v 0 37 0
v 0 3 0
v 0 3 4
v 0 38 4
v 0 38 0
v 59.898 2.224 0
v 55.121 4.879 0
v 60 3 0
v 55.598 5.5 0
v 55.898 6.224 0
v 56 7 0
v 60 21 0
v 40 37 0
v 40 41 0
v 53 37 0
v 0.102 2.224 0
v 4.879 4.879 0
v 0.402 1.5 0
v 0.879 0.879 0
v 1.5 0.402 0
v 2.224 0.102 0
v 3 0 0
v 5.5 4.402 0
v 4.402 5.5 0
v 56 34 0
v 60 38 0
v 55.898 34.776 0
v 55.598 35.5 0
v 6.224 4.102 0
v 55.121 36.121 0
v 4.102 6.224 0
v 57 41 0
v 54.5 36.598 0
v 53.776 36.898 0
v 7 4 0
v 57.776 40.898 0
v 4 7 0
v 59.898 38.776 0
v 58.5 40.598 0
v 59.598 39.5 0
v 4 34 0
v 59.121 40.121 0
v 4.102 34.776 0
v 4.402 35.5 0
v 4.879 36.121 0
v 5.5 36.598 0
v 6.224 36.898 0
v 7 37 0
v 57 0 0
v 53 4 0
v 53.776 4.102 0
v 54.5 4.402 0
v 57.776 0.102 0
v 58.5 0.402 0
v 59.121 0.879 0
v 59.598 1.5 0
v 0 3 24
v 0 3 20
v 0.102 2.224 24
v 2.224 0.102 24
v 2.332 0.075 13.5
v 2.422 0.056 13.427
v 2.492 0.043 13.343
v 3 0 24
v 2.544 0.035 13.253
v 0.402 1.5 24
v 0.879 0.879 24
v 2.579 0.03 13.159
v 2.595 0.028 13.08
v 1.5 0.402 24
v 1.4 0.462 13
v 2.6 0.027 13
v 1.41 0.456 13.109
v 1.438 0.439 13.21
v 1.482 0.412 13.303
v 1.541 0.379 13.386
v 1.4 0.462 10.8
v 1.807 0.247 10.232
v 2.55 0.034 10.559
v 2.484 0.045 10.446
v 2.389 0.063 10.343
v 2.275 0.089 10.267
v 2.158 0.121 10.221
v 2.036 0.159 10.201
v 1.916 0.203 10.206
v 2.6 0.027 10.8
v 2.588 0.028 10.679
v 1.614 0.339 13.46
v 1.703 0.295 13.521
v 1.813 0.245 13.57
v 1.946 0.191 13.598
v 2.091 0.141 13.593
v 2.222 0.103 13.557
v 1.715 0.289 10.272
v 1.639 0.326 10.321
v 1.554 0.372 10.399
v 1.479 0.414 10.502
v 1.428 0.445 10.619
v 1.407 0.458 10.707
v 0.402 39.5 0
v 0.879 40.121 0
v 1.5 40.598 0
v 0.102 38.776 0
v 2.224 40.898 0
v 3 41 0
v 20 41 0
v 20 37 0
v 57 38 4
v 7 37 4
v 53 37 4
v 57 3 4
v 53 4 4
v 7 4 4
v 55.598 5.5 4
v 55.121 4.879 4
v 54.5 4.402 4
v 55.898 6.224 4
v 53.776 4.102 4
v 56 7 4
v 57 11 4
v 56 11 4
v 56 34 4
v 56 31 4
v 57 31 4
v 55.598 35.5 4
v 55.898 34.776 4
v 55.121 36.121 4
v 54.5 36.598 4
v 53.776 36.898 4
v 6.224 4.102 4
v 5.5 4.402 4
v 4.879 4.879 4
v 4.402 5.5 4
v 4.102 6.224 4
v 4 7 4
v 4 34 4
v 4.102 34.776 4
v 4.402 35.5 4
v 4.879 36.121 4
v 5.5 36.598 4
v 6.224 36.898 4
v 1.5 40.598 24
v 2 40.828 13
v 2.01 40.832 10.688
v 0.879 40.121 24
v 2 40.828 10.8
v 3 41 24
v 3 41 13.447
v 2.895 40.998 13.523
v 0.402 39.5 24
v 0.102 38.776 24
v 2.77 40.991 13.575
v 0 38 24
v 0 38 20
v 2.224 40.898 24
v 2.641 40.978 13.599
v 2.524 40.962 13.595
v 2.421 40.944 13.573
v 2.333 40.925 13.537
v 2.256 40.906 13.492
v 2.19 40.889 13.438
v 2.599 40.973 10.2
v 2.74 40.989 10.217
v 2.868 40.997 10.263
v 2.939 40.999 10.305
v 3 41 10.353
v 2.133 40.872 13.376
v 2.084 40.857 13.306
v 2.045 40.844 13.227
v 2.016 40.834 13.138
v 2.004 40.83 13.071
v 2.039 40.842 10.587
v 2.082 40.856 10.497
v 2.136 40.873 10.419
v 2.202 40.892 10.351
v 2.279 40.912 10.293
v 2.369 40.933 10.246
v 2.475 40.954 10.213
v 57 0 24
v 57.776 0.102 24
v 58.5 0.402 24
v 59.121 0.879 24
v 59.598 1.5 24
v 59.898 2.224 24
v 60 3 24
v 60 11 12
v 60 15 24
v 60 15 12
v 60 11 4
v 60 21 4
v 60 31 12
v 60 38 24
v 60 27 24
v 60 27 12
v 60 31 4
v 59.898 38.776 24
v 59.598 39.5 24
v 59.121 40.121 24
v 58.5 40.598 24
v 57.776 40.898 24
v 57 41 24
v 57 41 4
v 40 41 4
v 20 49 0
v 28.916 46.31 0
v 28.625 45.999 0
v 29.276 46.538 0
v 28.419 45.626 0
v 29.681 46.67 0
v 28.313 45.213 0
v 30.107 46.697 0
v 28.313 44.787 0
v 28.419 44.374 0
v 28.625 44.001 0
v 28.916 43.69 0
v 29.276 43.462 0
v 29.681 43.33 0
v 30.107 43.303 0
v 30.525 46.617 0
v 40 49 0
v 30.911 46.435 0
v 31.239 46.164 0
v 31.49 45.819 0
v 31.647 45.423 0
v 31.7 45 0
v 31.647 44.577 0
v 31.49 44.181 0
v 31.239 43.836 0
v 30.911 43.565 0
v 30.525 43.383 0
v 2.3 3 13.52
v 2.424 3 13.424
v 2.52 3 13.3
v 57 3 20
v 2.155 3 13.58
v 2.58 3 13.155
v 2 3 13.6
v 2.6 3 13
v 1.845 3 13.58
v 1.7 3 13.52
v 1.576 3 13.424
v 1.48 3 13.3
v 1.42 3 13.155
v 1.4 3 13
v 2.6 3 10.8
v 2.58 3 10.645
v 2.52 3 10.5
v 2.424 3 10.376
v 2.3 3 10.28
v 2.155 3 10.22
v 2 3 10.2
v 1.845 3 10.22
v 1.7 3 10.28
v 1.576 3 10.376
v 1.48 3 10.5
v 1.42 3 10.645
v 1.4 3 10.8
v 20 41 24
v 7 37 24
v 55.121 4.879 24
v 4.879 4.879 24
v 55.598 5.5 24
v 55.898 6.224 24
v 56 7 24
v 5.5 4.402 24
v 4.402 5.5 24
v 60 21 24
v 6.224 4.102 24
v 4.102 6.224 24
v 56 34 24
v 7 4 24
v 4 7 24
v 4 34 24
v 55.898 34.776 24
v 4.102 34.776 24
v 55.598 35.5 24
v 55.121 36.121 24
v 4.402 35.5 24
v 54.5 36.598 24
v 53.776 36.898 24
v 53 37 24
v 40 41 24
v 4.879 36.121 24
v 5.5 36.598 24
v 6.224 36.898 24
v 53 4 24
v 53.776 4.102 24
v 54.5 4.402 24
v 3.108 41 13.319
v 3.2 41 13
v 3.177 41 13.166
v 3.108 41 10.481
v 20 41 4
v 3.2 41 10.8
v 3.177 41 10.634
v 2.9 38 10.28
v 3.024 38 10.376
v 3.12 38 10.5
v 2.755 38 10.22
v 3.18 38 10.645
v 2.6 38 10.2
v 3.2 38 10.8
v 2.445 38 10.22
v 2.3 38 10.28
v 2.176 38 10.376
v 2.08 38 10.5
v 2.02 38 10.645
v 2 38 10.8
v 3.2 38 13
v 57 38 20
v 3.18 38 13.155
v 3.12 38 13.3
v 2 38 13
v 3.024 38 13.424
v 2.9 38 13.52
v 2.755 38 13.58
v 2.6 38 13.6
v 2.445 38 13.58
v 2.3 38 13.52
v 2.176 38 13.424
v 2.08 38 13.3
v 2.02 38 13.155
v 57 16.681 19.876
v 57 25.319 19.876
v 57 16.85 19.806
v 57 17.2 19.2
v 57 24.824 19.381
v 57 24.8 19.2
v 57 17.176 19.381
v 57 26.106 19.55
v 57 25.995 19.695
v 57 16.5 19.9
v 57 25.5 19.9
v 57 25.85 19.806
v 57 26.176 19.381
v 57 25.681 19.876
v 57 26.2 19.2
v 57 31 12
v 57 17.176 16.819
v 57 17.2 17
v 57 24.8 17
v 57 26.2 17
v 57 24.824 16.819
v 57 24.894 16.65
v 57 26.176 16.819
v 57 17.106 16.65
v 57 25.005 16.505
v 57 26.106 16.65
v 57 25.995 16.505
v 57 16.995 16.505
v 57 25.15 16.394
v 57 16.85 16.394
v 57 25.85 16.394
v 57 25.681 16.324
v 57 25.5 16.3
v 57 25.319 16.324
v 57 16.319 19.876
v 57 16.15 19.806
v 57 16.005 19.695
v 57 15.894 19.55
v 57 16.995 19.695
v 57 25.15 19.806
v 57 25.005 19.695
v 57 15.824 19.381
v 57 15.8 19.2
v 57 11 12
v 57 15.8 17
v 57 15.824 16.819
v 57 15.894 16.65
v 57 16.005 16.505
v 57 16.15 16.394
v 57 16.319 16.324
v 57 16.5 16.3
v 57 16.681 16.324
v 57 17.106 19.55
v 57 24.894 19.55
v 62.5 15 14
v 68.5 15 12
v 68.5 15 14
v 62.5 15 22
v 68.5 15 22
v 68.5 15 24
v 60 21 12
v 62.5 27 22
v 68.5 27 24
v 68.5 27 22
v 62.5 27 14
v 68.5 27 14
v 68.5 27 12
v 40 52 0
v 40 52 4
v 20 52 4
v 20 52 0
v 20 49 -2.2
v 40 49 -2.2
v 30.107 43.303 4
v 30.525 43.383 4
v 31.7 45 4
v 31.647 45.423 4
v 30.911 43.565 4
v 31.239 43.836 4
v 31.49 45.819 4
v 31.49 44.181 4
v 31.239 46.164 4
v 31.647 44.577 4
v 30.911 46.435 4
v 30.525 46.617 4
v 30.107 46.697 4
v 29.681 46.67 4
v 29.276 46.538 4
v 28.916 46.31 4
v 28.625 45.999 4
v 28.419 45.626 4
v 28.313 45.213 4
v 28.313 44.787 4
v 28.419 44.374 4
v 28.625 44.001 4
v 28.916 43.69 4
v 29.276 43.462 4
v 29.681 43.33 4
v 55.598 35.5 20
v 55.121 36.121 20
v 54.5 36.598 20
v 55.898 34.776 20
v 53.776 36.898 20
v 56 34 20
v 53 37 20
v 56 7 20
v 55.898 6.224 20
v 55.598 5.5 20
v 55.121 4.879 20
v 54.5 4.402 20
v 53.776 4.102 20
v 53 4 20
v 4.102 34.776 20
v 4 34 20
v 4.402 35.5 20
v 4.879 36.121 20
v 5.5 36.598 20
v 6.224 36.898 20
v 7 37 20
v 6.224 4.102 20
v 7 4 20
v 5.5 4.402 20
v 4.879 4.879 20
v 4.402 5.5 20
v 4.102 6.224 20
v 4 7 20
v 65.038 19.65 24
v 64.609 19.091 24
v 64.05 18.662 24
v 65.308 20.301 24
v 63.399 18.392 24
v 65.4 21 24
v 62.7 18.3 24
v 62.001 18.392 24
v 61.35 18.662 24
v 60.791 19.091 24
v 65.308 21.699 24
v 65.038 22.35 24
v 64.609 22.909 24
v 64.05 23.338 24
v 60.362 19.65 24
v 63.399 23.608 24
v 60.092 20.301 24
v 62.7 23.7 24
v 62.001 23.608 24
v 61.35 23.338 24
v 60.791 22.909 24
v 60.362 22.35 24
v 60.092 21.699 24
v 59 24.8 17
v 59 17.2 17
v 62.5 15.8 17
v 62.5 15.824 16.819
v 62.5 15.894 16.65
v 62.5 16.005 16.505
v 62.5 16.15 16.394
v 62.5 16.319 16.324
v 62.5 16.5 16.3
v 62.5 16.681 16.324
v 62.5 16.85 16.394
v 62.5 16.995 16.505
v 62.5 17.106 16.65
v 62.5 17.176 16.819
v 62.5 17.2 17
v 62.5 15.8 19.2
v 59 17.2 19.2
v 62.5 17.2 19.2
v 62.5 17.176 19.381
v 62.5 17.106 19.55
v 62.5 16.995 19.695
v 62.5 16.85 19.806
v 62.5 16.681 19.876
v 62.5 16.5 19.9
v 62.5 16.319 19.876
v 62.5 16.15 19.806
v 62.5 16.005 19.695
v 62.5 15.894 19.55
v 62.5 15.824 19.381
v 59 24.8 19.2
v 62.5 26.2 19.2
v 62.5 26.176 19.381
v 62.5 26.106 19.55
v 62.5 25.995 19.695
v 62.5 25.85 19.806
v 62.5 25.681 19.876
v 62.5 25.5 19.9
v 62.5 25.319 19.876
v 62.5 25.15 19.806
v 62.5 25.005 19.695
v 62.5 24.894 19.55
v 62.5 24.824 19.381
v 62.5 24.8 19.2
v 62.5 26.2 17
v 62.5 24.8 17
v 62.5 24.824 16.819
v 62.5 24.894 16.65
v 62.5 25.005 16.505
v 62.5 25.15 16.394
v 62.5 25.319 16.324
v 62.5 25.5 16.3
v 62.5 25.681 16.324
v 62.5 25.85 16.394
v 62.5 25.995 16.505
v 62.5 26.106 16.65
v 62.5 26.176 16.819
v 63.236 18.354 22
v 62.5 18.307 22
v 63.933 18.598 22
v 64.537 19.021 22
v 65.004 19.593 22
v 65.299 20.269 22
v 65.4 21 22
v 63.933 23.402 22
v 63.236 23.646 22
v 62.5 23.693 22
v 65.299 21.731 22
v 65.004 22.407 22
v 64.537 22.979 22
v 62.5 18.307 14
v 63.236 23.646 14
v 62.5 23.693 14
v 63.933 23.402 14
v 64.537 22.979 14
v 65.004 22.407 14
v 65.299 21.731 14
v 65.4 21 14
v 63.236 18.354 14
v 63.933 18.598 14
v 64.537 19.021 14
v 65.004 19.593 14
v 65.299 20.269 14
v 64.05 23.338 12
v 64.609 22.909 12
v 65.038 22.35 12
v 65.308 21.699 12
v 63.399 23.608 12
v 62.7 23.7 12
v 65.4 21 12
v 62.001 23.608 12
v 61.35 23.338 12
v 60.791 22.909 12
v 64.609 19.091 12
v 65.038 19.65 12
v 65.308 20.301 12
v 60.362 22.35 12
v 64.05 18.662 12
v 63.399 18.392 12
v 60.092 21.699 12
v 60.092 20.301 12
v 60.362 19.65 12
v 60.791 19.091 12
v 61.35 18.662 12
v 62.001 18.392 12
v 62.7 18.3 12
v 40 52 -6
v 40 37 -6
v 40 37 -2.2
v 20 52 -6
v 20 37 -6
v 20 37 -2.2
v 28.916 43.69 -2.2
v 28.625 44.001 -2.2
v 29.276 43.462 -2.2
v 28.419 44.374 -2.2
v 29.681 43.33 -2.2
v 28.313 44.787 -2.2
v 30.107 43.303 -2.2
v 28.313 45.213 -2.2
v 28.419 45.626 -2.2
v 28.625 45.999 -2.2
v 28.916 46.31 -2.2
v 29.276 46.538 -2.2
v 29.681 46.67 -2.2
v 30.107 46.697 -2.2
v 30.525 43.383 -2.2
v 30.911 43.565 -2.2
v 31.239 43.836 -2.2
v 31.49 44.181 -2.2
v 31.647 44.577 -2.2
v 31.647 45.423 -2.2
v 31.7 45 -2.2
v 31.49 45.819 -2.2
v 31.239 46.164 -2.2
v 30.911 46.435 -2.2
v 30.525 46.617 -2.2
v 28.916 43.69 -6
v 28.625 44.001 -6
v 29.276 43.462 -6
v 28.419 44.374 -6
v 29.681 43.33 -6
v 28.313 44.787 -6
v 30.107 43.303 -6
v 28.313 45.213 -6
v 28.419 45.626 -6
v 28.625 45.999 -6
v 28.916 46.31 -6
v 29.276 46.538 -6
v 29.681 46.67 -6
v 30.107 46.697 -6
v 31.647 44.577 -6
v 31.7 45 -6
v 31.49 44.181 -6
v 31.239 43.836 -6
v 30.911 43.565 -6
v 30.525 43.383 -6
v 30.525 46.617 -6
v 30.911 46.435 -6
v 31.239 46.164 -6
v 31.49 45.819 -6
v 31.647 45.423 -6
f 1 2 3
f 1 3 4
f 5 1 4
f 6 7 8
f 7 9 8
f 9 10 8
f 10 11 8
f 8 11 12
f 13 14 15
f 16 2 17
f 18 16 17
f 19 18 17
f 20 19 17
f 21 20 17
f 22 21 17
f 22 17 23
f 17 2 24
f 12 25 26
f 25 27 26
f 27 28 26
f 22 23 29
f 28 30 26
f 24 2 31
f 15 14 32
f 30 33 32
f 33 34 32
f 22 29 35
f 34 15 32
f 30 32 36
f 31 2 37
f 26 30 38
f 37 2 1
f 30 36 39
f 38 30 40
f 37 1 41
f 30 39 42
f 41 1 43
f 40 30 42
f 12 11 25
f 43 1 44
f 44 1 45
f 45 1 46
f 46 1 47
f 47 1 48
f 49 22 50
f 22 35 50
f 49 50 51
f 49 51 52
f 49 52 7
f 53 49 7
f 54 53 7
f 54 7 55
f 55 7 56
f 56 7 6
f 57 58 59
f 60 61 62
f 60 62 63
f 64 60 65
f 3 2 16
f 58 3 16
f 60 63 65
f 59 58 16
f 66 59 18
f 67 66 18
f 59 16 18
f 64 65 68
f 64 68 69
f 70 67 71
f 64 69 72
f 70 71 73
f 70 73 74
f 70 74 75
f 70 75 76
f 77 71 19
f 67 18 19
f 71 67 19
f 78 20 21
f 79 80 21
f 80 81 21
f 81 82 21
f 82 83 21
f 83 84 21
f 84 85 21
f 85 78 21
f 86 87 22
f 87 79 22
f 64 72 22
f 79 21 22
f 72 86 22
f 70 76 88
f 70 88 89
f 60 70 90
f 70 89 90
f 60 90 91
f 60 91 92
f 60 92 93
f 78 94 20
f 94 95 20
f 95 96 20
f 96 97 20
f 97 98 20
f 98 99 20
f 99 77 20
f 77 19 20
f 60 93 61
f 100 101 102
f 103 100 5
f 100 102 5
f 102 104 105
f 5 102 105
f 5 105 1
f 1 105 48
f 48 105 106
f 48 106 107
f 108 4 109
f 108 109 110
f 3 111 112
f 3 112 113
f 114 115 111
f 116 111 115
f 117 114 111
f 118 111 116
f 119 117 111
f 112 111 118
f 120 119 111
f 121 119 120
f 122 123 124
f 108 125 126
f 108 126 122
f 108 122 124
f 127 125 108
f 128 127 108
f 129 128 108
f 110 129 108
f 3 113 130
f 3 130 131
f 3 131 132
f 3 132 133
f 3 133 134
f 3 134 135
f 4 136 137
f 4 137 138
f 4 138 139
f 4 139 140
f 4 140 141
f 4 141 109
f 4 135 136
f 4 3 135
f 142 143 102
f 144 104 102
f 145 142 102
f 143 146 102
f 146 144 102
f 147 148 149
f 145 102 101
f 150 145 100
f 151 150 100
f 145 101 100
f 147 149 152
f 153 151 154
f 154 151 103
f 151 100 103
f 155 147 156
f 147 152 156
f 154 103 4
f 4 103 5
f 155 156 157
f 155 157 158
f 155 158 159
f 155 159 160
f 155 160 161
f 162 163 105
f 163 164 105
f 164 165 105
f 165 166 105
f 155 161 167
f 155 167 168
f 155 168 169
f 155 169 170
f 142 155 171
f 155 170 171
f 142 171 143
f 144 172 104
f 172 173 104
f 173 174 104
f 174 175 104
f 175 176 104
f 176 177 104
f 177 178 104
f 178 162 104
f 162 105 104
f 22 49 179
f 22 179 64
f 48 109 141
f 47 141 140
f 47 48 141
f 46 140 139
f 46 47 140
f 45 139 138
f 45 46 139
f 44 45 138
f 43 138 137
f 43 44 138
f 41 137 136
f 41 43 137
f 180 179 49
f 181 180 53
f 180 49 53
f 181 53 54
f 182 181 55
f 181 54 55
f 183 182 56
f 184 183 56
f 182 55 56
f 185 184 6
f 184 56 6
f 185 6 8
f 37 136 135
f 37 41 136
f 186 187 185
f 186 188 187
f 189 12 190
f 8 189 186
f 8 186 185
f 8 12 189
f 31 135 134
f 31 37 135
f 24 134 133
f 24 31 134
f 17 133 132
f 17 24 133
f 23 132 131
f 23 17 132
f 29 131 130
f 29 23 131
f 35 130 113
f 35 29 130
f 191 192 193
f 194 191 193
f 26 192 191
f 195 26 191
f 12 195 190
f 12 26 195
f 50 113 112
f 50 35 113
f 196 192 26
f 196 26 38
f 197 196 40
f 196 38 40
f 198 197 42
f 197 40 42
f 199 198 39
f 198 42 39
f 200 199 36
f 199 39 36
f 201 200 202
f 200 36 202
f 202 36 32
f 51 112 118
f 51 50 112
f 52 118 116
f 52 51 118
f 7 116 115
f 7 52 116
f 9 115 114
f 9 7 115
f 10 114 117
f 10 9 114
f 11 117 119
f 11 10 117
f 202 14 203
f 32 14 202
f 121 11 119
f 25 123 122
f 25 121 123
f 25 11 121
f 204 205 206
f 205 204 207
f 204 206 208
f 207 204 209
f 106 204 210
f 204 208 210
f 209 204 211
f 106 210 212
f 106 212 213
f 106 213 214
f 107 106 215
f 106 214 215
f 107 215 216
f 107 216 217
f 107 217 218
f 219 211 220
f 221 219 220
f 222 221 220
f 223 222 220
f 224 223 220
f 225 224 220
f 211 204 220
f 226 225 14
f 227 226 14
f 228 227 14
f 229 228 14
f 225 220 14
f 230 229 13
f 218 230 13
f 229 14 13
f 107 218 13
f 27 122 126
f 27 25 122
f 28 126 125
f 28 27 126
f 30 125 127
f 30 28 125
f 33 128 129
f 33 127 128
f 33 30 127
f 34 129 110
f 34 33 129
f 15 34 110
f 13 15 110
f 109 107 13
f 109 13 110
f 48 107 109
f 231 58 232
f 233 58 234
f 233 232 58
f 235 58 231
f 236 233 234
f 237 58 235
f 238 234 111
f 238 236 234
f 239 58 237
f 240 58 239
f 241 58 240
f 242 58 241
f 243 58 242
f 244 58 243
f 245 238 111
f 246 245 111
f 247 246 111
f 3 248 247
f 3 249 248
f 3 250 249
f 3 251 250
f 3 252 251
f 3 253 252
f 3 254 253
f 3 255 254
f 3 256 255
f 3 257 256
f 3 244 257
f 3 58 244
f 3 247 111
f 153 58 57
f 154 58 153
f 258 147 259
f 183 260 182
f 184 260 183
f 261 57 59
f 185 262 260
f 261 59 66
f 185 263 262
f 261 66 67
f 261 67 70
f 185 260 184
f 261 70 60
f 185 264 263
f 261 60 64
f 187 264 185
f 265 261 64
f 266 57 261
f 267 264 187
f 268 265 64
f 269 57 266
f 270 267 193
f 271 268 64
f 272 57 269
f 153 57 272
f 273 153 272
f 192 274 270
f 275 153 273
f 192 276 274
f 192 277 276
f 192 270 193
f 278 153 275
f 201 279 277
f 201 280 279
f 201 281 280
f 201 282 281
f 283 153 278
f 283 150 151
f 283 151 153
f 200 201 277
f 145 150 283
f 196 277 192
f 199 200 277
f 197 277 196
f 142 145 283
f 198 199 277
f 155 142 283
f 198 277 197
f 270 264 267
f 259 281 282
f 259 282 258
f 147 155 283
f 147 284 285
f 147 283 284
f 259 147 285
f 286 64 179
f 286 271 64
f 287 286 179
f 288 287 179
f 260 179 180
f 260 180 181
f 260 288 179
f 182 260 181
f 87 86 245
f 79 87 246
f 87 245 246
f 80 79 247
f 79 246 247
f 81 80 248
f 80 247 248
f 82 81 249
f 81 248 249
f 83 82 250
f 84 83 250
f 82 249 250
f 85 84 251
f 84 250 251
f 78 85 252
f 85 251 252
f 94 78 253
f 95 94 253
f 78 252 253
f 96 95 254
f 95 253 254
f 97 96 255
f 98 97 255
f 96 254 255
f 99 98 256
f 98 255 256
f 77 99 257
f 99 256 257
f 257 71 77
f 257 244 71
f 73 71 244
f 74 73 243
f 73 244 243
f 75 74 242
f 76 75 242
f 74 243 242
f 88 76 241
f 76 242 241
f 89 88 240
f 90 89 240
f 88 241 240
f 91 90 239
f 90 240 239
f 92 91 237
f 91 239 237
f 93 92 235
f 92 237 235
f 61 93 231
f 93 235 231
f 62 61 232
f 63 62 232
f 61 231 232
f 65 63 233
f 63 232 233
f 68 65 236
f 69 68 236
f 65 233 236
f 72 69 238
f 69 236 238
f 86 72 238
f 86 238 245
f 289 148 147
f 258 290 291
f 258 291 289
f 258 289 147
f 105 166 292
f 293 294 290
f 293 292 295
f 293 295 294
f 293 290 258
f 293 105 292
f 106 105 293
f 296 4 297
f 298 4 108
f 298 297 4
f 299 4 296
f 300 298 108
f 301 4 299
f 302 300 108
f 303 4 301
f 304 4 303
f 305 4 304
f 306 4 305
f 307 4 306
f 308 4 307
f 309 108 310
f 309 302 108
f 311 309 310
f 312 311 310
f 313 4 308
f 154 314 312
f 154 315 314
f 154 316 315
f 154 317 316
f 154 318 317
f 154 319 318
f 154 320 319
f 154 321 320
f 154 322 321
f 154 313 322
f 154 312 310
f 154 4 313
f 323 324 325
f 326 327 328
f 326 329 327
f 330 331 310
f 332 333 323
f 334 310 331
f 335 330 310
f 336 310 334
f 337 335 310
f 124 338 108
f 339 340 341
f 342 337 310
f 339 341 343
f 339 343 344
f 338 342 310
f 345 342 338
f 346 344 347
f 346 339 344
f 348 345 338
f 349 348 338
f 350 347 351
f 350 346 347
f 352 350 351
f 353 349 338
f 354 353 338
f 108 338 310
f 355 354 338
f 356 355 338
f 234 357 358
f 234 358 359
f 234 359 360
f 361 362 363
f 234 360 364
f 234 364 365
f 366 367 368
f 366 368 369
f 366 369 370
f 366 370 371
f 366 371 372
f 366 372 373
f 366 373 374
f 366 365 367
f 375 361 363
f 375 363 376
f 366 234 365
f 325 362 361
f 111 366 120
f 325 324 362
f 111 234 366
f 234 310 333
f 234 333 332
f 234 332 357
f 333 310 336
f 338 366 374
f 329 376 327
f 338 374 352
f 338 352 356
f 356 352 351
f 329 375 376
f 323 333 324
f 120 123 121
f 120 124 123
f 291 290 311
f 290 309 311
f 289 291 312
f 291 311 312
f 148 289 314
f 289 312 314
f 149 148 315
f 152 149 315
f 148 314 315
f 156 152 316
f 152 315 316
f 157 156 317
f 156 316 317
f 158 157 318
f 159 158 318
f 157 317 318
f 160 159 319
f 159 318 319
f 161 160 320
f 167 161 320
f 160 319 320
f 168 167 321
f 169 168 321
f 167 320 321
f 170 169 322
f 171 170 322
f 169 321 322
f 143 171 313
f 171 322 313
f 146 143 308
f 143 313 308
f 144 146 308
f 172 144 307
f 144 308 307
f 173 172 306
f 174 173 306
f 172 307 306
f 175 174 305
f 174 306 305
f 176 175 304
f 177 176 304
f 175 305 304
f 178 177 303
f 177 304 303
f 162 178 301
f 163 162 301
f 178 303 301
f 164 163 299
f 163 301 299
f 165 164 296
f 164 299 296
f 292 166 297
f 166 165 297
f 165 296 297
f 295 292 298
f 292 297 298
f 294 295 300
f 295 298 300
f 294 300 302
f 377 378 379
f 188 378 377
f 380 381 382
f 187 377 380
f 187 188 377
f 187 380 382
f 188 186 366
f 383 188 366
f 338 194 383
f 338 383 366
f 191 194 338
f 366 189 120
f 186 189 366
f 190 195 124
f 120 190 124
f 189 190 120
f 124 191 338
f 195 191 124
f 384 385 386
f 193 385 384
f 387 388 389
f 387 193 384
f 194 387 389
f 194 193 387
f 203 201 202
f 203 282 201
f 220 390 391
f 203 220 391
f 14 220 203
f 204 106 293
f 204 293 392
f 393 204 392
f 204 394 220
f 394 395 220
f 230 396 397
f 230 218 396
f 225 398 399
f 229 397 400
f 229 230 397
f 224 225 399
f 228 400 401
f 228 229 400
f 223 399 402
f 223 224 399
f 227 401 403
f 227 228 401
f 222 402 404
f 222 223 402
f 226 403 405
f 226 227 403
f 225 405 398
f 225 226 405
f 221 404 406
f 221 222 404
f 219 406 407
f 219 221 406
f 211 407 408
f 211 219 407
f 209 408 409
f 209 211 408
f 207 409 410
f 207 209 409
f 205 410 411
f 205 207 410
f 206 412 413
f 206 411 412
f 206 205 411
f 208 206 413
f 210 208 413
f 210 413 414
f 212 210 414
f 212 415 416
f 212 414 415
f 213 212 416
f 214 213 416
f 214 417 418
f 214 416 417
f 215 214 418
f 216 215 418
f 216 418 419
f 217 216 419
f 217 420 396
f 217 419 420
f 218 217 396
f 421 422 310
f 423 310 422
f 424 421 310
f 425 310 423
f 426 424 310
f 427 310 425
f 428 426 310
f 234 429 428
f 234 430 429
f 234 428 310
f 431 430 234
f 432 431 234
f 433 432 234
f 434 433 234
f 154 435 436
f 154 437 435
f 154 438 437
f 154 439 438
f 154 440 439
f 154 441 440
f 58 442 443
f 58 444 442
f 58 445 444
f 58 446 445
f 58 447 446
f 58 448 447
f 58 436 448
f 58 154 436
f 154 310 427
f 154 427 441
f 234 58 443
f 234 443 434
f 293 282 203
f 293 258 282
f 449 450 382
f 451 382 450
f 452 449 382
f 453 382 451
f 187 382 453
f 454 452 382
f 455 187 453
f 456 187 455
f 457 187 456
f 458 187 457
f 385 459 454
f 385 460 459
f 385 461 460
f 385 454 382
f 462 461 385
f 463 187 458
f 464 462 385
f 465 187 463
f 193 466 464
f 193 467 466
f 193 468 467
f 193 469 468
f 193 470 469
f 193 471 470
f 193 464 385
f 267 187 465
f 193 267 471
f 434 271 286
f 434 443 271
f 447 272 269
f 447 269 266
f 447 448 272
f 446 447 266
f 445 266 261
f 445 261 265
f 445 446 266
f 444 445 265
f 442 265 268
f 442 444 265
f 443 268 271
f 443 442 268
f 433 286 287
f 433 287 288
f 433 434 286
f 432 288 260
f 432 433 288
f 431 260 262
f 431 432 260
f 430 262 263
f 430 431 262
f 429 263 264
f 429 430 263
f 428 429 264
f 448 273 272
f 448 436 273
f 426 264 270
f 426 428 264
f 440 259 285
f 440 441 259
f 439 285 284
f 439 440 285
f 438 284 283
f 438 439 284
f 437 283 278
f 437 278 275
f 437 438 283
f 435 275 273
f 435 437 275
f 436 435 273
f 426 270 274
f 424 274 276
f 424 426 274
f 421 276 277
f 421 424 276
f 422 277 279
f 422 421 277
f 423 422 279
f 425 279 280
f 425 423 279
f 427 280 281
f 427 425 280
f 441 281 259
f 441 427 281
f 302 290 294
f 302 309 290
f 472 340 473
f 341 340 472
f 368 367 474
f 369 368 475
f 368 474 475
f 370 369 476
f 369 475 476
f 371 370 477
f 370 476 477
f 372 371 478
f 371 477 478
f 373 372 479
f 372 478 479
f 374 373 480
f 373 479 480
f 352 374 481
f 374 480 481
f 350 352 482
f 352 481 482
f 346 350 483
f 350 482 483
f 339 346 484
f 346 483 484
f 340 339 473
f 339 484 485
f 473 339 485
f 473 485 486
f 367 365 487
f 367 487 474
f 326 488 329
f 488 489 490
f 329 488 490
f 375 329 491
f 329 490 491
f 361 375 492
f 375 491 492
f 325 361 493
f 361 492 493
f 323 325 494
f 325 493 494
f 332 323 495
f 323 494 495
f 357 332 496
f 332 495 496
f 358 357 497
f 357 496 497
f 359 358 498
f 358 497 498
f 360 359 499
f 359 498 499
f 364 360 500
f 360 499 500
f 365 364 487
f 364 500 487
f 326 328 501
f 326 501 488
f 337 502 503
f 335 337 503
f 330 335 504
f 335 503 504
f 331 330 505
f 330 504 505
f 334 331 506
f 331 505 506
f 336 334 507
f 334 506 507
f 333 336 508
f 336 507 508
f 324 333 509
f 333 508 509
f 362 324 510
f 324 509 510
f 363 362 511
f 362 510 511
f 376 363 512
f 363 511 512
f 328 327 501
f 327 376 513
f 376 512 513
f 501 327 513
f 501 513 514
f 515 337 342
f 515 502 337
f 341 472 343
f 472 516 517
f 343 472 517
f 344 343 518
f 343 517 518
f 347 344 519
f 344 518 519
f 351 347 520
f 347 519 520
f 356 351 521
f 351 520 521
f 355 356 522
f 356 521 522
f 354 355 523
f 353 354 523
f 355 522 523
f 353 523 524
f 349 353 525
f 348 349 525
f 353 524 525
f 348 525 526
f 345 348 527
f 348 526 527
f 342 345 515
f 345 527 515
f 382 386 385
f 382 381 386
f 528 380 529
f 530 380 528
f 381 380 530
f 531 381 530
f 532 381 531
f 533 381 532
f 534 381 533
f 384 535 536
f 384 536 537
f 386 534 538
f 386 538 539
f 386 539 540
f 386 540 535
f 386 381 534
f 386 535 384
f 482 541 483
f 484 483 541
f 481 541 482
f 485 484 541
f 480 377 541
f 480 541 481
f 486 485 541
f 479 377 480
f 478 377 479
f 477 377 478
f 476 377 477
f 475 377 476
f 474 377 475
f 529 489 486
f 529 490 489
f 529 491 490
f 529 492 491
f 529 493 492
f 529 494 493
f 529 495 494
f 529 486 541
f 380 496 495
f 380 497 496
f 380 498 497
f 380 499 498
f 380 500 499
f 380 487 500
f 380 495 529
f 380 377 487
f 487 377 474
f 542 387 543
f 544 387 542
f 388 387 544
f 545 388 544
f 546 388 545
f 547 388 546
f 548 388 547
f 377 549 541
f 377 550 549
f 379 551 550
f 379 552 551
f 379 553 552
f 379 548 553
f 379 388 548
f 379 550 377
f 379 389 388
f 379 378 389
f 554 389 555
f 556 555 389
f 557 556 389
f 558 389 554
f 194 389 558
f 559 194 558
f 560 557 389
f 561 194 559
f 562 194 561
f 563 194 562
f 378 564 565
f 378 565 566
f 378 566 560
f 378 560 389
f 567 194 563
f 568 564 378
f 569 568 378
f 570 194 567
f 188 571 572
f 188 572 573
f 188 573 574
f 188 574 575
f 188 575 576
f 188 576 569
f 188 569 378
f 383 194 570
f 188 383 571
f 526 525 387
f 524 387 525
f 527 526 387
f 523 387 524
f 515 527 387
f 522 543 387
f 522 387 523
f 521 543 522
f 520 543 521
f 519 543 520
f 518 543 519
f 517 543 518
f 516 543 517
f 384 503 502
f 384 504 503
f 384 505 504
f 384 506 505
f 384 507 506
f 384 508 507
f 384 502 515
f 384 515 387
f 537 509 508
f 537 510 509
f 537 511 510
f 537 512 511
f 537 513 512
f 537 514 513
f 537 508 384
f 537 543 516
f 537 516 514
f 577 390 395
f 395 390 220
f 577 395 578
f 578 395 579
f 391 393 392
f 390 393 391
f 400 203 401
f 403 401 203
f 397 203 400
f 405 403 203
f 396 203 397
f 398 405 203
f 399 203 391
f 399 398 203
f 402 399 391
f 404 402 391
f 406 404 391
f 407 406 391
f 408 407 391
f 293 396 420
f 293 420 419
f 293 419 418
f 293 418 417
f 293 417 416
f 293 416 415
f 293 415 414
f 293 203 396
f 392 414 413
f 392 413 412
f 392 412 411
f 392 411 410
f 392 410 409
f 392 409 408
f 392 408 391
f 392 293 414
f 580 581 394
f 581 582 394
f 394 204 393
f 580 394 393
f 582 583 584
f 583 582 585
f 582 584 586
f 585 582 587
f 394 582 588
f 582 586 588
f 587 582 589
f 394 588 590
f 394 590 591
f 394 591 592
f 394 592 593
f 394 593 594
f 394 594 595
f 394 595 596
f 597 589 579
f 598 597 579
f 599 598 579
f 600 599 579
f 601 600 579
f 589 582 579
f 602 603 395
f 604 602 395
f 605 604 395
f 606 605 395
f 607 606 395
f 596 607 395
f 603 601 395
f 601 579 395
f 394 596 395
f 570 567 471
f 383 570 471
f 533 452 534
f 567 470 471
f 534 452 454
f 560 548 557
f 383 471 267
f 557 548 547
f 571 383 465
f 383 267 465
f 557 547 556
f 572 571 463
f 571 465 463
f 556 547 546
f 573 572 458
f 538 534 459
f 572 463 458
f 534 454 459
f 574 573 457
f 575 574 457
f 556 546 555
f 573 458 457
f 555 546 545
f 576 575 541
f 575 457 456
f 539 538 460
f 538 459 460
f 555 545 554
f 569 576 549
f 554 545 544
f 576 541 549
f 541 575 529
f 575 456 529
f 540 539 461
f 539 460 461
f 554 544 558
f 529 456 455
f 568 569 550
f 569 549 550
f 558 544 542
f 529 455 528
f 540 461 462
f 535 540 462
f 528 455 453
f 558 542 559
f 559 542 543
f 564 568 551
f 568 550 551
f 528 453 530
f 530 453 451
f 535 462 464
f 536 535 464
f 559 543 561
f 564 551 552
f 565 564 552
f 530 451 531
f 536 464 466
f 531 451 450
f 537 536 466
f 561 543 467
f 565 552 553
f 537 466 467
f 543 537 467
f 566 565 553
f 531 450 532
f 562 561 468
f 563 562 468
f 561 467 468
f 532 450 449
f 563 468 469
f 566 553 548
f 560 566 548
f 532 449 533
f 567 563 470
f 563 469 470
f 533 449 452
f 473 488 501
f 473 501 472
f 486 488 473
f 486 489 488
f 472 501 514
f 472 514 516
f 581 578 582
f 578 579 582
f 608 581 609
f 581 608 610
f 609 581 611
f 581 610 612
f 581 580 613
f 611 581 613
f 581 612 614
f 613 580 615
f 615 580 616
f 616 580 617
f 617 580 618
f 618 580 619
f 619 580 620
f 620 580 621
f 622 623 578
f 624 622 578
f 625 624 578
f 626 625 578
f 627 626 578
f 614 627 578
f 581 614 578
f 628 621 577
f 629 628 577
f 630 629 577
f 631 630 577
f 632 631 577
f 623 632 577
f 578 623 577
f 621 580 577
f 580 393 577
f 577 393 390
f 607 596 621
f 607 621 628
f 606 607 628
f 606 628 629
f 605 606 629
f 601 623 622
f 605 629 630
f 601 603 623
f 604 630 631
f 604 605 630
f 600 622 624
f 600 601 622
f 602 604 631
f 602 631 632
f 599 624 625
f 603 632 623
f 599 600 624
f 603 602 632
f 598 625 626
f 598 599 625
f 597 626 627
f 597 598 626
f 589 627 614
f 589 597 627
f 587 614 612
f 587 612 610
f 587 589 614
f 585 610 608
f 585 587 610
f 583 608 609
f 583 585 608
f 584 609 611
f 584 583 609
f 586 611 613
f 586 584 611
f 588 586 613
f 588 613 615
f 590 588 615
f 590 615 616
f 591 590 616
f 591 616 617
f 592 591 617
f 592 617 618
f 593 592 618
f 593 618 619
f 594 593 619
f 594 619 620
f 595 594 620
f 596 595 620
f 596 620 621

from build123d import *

# Parameters (mm, degrees)
SKETCH_R        = 1.7
PAD_DEPTH       = 24
SKETCH001_W     = 35
SKETCH001_H     = 16
POCKET_DEPTH    = 57
SKETCH002_W     = 20
SKETCH002_H     = 8
POCKET001_DEPTH = 5
SKETCH003_W     = 11
SKETCH003_H     = 20
POCKET002_DEPTH = 40.001
SKETCH004_W     = 20
SKETCH004_H     = 15
SKETCH004_R     = 1.7
PAD001_DEPTH    = 6
SKETCH005_W     = 12
SKETCH005_H     = 2.2
POCKET003_DEPTH = 40.001
SKETCH006_W     = 12
SKETCH006_H     = 12
PAD002_DEPTH    = 8.5
SKETCH007_R     = 2.7
POCKET004_DEPTH = 30.001
SKETCH008_W     = 12
SKETCH008_H     = 8
POCKET005_DEPTH = 6
POCKET006_DEPTH = 10
SKETCH010_W     = 7.6
SKETCH010_H     = 2.2
POCKET007_DEPTH = 2
POCKET008_DEPTH = 3.001
POCKET009_DEPTH = 5


with BuildPart() as part:
    # Sketch → Pad (new body)
    with BuildSketch(Plane.XY):
        with BuildLine():
            Line((3, 41), (20, 41))
            Line((20, 41), (20, 52))
            Line((20, 52), (40, 52))
            Line((40, 52), (40, 41))
            Line((40, 41), (57, 41))
            ThreePointArc((60, 38), (59.12132, 40.12132), (57, 41))
            Line((60, 38), (60, 3))
            ThreePointArc((57, 0), (59.12132, 0.87868), (60, 3))
            Line((57, 0), (3, 0))
            ThreePointArc((0, 3), (0.87868, 0.87868), (3, 0))
            Line((0, 3), (0, 38))
            ThreePointArc((3, 41), (0.87868, 40.12132), (0, 38))
        make_face()
        with Locations((30, 45)):
            Circle(SKETCH_R, mode=Mode.SUBTRACT)
        with BuildLine():
            Line((7, 4), (53, 4))
            ThreePointArc((53, 4), (55.12132, 4.87868), (56, 7))
            Line((56, 7), (56, 34))
            ThreePointArc((56, 34), (55.12132, 36.12132), (53, 37))
            Line((53, 37), (7, 37))
            ThreePointArc((7, 37), (4.87868, 36.12132), (4, 34))
            Line((4, 34), (4, 7))
            ThreePointArc((4, 7), (4.87868, 4.87868), (7, 4))
        make_face(mode=Mode.SUBTRACT)
    extrude(amount=PAD_DEPTH)

    # Sketch001 → Pocket (cut)
    with BuildSketch(Plane(origin=(0, 0, 0), x_dir=(0, -1, 0), z_dir=(-1, 0, 0))):
        with Locations((-20.5, 12)):
            Rectangle(SKETCH001_W, SKETCH001_H)
    extrude(amount=-POCKET_DEPTH, mode=Mode.SUBTRACT)

    # Sketch002 → Pocket001 (cut)
    with BuildSketch(Plane.YZ.offset(60)):
        with Locations((21, 8)):
            Rectangle(SKETCH002_W, SKETCH002_H)
    extrude(amount=-POCKET001_DEPTH, mode=Mode.SUBTRACT)

    # Sketch003 → Pocket002 (cut, through all)
    with BuildSketch(Plane(origin=(20, 0, 0), x_dir=(0, -1, 0), z_dir=(-1, 0, 0))):
        with Locations((-46.5, 14)):
            Rectangle(SKETCH003_W, SKETCH003_H)
    extrude(amount=-POCKET002_DEPTH, mode=Mode.SUBTRACT)

    # Sketch004 → Pad001 (new body)
    with BuildSketch(Plane(origin=(0, 0, 0), x_dir=(1, 0, 0), z_dir=(0, 0, -1))):
        with Locations((30, -44.5)):
            Rectangle(SKETCH004_W, SKETCH004_H)
        with Locations((30, -45)):
            Circle(SKETCH004_R, mode=Mode.SUBTRACT)
    extrude(amount=PAD001_DEPTH)

    # Sketch005 → Pocket003 (cut, through all)
    with BuildSketch(Plane.YZ.offset(40)):
        with Locations((43, -1.1)):
            Rectangle(SKETCH005_W, SKETCH005_H)
    extrude(amount=-POCKET003_DEPTH, mode=Mode.SUBTRACT)

    # Sketch006 → Pad002 (new body)
    with BuildSketch(Plane.YZ.offset(60)):
        with Locations((21, 18)):
            Rectangle(SKETCH006_W, SKETCH006_H)
    extrude(amount=PAD002_DEPTH)

    # Sketch007 → Pocket004 (cut, through all)
    with BuildSketch(Plane.XY.offset(24)):
        with Locations((62.7, 21)):
            Circle(SKETCH007_R)
    extrude(amount=-POCKET004_DEPTH, mode=Mode.SUBTRACT)

    # Sketch008 → Pocket005 (cut)
    with BuildSketch(Plane.YZ.offset(68.5)):
        with Locations((21, 18)):
            Rectangle(SKETCH008_W, SKETCH008_H)
    extrude(amount=-POCKET005_DEPTH, mode=Mode.SUBTRACT)

    # Sketch009 → Pocket006 (cut)
    with BuildSketch(Plane.YZ.offset(62.5)):
        with BuildLine():
            ThreePointArc((17.2, 19.200001), (16.5, 19.900001), (15.8, 19.200001))
            Line((15.8, 19.200001), (15.8, 17))
            ThreePointArc((15.8, 17), (16.5, 16.3), (17.2, 17.000001))
            Line((17.2, 19.200001), (17.2, 17.000001))
        make_face()
        with BuildLine():
            ThreePointArc((26.2, 19.2), (25.5, 19.900001), (24.8, 19.200001))
            Line((24.8, 19.200001), (24.8, 17.000001))
            ThreePointArc((24.8, 17.000001), (25.5, 16.300001), (26.2, 17))
            Line((26.2, 19.2), (26.2, 17))
        make_face()
    extrude(amount=-POCKET006_DEPTH, mode=Mode.SUBTRACT)

    # Sketch010 → Pocket007 (cut)
    with BuildSketch(Plane(origin=(57, 0, 0), x_dir=(0, -1, 0), z_dir=(-1, 0, 0))):
        with Locations((-21, 18.100001)):
            Rectangle(SKETCH010_W, SKETCH010_H)
    extrude(amount=-POCKET007_DEPTH, mode=Mode.SUBTRACT)

    # Sketch011 → Pocket008 (cut, through all)
    with BuildSketch(Plane(origin=(0, 3, 0), x_dir=(-1, 0, 0), z_dir=(0, 1, 0))):
        with BuildLine():
            ThreePointArc((-1.4, 12.999991), (-2, 13.6), (-2.6, 12.999991))
            Line((-2.6, 12.999991), (-2.6, 10.799995))
            ThreePointArc((-2.6, 10.799995), (-2, 10.2), (-1.4, 10.799994))
            Line((-1.4, 12.999991), (-1.4, 10.799994))
        make_face()
    extrude(amount=-POCKET008_DEPTH, mode=Mode.SUBTRACT)

    # Sketch012 → Pocket009 (cut)
    with BuildSketch(Plane.XZ.offset(-38)):
        with BuildLine():
            ThreePointArc((3.2, 13), (2.6, 13.600002), (2, 13))
            Line((2, 13), (2, 10.800003))
            ThreePointArc((2, 10.800003), (2.6, 10.200002), (3.2, 10.800003))
            Line((3.2, 13), (3.2, 10.800003))
        make_face()
    extrude(amount=-POCKET009_DEPTH, mode=Mode.SUBTRACT)


solid = part.part
